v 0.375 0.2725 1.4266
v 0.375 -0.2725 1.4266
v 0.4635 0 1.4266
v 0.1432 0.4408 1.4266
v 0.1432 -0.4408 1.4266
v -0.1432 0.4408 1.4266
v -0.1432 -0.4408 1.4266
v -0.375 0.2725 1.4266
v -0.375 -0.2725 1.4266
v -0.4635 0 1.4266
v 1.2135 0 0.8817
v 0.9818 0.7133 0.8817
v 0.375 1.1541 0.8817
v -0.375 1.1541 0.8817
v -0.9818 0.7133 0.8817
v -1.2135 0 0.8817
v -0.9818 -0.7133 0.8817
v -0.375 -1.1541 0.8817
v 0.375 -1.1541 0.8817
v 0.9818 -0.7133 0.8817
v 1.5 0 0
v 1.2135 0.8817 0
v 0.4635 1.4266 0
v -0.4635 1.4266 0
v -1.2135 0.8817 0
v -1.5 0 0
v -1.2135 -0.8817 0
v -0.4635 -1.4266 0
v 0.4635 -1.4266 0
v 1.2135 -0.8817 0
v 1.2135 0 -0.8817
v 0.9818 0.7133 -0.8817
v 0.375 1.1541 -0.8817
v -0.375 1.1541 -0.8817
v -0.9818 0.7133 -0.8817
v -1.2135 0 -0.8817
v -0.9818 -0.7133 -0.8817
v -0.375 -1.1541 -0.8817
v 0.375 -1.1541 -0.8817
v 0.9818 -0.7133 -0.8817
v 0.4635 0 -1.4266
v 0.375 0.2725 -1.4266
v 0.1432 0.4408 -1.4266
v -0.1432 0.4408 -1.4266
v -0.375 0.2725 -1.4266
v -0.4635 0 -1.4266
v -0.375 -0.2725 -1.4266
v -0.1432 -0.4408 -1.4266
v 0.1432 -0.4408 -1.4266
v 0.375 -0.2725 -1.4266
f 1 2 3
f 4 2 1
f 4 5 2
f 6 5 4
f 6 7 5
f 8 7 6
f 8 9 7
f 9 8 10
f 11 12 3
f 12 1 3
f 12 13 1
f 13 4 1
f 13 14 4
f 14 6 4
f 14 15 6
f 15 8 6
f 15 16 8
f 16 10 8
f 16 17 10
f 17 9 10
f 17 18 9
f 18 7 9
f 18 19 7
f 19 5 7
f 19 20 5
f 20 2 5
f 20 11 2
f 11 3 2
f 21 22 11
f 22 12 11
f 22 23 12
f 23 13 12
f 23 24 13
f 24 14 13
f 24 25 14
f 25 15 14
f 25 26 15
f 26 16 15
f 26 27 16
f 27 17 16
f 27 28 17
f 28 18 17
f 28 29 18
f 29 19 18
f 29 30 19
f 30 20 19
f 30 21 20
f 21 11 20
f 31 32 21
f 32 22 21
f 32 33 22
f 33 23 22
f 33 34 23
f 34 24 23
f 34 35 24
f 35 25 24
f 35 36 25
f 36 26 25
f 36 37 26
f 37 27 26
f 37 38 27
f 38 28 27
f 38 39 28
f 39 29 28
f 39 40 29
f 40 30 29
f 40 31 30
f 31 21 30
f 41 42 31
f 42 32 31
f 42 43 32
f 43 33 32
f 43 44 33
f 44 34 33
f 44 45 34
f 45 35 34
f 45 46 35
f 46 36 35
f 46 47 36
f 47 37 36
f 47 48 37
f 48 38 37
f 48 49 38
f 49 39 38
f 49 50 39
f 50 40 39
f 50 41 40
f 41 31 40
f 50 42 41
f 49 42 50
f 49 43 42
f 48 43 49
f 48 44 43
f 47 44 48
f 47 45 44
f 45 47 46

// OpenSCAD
// difference() {
//     cube(3, true);
//     sphere(2, $fn=10);
// }

sphere(1.5, $fn=10);
